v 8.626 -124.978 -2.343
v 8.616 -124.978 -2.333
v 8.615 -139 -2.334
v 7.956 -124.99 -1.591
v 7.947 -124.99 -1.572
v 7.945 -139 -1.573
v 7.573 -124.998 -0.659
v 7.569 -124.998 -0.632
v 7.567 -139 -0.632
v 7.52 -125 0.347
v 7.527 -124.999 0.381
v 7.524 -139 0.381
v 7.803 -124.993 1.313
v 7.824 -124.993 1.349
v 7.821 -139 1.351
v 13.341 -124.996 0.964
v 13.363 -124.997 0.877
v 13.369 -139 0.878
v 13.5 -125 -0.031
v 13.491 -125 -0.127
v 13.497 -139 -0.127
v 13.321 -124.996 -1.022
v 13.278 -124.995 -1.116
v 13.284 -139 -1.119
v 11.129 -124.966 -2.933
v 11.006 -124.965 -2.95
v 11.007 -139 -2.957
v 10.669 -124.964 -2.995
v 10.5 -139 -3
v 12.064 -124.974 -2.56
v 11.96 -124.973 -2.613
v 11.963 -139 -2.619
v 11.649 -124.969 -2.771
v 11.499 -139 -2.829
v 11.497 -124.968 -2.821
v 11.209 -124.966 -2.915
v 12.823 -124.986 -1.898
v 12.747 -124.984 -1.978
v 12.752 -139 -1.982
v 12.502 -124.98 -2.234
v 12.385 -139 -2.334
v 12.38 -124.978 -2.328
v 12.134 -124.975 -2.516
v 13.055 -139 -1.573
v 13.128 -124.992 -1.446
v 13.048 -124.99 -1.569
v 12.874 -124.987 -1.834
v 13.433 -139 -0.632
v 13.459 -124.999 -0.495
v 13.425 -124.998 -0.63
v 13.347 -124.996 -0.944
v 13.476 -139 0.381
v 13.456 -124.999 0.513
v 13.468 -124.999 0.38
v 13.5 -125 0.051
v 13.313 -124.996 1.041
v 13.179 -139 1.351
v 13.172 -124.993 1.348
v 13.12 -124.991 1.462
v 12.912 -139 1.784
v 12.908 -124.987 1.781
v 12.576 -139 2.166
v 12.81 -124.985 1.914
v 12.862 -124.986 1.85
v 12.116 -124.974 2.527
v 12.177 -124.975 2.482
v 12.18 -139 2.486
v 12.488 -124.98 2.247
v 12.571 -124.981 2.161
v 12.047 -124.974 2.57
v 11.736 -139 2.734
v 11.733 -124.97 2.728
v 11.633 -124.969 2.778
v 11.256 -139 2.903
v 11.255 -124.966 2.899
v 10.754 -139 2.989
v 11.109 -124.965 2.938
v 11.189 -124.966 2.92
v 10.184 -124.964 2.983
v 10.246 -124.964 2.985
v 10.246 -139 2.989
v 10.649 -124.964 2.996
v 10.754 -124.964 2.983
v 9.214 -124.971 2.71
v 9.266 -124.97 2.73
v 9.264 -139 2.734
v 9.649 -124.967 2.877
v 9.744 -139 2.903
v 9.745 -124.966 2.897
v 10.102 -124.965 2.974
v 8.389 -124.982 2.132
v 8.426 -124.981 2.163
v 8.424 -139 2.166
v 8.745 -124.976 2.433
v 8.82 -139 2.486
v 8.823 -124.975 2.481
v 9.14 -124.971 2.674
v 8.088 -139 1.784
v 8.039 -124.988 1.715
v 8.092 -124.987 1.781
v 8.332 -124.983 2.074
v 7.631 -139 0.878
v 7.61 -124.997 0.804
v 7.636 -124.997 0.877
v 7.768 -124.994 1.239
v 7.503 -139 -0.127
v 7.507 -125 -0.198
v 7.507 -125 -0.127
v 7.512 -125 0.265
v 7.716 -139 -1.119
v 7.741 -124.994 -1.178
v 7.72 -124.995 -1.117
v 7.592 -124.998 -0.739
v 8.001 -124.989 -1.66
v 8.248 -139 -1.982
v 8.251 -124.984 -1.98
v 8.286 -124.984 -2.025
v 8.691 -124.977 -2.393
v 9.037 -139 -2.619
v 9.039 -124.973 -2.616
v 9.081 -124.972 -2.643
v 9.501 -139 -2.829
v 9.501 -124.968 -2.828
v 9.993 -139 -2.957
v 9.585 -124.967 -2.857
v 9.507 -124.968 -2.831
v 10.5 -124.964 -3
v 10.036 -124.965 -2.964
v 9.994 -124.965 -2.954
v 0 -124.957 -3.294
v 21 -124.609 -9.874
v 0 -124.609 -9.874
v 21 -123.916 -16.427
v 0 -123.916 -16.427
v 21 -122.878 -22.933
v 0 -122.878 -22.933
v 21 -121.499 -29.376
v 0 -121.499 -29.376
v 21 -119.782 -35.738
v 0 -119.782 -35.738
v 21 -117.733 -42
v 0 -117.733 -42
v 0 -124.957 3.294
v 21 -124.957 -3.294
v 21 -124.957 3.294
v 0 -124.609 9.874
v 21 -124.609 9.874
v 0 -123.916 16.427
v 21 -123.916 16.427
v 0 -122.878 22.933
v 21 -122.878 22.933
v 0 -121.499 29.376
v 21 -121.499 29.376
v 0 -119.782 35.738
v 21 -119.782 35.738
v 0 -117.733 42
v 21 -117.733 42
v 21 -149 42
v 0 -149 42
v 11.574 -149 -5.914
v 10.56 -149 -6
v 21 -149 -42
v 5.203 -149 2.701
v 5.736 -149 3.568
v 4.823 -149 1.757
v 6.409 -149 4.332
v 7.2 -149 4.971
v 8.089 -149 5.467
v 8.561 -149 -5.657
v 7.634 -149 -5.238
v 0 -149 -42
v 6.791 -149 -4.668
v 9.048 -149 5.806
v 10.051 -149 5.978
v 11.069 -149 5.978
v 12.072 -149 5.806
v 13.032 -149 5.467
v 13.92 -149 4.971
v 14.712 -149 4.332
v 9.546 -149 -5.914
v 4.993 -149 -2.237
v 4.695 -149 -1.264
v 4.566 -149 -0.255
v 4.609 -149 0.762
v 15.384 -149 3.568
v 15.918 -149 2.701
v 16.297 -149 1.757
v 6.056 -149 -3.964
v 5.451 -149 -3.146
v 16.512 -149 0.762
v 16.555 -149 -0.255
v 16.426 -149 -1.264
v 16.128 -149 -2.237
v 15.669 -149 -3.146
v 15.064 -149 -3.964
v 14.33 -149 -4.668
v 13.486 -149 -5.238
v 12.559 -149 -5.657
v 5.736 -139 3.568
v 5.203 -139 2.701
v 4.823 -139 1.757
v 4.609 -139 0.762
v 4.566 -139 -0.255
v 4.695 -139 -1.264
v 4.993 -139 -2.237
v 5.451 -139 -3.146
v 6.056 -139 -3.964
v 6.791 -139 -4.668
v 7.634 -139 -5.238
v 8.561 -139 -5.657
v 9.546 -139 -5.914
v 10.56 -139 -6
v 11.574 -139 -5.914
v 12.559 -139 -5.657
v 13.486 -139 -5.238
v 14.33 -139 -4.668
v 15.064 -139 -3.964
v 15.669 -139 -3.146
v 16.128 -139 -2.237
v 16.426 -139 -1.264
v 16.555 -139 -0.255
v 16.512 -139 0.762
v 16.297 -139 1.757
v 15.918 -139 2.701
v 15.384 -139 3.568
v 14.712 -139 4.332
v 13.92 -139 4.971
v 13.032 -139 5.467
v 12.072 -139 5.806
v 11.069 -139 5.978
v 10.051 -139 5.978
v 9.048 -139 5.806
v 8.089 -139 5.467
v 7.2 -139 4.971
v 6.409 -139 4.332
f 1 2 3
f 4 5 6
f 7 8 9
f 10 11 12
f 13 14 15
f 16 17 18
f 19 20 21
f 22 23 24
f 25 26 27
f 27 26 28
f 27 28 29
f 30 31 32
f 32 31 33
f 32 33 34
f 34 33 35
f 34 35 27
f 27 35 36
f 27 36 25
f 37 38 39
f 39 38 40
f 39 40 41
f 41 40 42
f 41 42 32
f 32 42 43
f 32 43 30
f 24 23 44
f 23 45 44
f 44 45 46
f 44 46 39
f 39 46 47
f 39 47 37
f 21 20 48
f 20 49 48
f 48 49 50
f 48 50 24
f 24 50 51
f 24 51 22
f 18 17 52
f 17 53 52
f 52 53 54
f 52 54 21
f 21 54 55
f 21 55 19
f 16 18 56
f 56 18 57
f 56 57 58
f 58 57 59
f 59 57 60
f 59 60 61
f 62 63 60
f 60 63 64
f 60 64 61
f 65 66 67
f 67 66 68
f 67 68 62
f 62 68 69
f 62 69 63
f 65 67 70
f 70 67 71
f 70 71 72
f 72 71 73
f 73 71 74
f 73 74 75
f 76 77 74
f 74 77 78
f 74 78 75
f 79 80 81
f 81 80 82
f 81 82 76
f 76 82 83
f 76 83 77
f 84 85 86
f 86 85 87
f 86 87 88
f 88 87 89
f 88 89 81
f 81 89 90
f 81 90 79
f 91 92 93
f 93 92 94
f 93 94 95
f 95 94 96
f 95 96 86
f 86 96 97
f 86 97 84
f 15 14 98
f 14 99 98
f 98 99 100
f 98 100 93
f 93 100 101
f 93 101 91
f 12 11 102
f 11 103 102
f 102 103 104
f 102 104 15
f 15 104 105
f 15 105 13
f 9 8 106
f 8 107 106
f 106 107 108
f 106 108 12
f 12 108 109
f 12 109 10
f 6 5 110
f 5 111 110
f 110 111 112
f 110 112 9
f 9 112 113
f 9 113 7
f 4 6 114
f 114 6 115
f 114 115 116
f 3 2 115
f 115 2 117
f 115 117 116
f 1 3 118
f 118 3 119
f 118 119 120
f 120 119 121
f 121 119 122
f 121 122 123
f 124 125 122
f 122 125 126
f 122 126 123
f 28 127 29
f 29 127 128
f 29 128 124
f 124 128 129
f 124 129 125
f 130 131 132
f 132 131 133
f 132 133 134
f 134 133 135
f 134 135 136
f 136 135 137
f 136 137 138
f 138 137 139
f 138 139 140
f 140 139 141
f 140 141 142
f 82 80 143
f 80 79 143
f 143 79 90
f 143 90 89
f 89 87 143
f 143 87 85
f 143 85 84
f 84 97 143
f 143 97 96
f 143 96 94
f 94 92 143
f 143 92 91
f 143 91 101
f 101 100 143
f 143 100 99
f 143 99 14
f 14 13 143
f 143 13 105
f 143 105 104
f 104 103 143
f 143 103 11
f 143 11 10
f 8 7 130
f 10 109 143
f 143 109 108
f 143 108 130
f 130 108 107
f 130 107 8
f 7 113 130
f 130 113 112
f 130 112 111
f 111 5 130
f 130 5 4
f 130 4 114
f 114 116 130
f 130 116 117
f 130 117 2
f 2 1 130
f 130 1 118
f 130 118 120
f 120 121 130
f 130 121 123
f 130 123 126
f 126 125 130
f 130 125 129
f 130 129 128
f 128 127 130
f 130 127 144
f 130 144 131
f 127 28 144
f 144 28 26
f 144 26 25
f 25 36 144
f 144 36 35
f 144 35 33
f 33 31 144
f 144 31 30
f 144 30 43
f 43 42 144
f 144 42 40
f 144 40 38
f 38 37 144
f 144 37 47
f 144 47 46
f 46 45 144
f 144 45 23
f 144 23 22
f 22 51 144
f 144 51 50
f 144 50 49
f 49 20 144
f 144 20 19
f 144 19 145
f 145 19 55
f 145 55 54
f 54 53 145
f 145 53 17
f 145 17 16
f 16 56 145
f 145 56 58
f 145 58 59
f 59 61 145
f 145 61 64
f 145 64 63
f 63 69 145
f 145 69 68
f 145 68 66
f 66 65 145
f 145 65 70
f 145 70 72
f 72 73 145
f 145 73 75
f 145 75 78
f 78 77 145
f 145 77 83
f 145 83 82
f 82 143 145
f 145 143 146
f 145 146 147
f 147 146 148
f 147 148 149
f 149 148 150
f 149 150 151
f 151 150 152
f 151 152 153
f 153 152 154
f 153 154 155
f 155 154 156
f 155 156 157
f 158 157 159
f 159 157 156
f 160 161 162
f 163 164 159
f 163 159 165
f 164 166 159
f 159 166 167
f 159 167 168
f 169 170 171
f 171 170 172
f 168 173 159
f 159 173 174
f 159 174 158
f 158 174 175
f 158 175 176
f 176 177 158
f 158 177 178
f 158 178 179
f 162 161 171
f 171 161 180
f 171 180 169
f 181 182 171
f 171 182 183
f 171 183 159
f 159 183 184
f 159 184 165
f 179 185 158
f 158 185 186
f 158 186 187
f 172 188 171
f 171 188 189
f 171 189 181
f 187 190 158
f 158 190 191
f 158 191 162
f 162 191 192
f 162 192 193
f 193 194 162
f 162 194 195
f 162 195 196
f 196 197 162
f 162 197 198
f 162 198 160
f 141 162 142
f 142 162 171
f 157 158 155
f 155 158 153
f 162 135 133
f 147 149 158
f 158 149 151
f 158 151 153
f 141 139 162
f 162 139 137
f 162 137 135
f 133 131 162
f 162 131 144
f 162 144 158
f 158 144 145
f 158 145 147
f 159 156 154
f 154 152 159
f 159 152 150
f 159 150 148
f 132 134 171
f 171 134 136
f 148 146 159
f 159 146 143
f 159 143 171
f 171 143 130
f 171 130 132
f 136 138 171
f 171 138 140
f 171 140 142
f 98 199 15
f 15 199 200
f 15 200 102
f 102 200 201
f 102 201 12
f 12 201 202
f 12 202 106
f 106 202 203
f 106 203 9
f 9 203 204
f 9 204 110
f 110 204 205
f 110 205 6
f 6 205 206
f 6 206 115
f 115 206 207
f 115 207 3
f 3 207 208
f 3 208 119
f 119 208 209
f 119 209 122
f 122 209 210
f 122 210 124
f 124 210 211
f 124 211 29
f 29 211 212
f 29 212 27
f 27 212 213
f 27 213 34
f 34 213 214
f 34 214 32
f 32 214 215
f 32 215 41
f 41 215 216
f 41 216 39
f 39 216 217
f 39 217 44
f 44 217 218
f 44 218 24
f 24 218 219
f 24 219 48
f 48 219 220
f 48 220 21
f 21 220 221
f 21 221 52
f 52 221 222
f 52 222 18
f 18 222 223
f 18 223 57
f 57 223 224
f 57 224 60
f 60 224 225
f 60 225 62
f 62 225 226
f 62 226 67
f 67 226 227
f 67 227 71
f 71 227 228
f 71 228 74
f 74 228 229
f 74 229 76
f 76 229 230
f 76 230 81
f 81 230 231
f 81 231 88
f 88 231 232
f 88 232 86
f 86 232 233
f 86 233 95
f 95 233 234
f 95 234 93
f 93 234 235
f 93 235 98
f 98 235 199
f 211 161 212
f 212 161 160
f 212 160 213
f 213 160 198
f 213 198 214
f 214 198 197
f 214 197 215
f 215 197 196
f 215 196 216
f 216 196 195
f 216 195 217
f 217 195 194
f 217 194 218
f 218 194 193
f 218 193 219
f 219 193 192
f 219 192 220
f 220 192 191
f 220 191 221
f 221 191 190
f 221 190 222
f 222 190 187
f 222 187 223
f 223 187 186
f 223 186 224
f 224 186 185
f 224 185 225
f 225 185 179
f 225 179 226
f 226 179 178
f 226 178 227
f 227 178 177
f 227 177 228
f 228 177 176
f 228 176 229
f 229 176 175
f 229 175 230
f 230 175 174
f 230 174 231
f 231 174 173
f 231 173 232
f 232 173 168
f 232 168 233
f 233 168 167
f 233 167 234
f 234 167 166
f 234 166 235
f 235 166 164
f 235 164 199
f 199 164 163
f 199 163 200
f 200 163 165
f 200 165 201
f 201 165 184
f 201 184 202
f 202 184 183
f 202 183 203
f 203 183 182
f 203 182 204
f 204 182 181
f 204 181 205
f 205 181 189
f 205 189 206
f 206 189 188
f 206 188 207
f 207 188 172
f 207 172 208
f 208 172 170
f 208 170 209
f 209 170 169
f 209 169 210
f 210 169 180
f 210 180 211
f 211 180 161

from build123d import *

# Parameters (mm, degrees)
BOSS_EXTRU_1_DEPTH      = 21
ENL_V_MAT_EXTRU_1_REACH = 33.267
ESQUISSE2_R             = 3
ESQUISSE3_R             = 6
ENL_V_MAT_EXTRU_2_DEPTH = 10


with BuildPart() as part:
    # Esquisse1 → Boss.-Extru.1 (new body)
    with BuildSketch(Plane(origin=(0, 0, 0), x_dir=(0, 0, -1), z_dir=(1, 0, 0))):
        with BuildLine():
            Line((-42, -117.732748205), (-42, -149))
            Line((-42, -149), (42, -149))
            Line((42, -149), (42, -117.732748205))
            ThreePointArc((42, -117.732748205), (0, -125), (-42, -117.732748205))
        make_face()
    extrude(amount=BOSS_EXTRU_1_DEPTH)

    # Esquisse2 → Enlèv. mat.-Extru.1 (cut, up to next)
    with BuildSketch(Plane.XZ.offset(149), mode=Mode.PRIVATE) as enl_v_mat_extru_1_sk1:
        with Locations((10.5, 0)):
            Circle(ESQUISSE2_R)
    enl_v_mat_extru_1_tool1 = extrude(enl_v_mat_extru_1_sk1.sketch, amount=-ENL_V_MAT_EXTRU_1_REACH, mode=Mode.PRIVATE) & part.part
    add(enl_v_mat_extru_1_tool1.solids().sort_by_distance((10.5, -149, 0))[0], mode=Mode.SUBTRACT)

    # Esquisse3 → Enlèv. mat.-Extru.2 (cut)
    with BuildSketch(Plane.XZ.offset(149)):
        with Locations((10.560210211, 0)):
            Circle(ESQUISSE3_R)
    extrude(amount=-ENL_V_MAT_EXTRU_2_DEPTH, mode=Mode.SUBTRACT)


solid = part.part
